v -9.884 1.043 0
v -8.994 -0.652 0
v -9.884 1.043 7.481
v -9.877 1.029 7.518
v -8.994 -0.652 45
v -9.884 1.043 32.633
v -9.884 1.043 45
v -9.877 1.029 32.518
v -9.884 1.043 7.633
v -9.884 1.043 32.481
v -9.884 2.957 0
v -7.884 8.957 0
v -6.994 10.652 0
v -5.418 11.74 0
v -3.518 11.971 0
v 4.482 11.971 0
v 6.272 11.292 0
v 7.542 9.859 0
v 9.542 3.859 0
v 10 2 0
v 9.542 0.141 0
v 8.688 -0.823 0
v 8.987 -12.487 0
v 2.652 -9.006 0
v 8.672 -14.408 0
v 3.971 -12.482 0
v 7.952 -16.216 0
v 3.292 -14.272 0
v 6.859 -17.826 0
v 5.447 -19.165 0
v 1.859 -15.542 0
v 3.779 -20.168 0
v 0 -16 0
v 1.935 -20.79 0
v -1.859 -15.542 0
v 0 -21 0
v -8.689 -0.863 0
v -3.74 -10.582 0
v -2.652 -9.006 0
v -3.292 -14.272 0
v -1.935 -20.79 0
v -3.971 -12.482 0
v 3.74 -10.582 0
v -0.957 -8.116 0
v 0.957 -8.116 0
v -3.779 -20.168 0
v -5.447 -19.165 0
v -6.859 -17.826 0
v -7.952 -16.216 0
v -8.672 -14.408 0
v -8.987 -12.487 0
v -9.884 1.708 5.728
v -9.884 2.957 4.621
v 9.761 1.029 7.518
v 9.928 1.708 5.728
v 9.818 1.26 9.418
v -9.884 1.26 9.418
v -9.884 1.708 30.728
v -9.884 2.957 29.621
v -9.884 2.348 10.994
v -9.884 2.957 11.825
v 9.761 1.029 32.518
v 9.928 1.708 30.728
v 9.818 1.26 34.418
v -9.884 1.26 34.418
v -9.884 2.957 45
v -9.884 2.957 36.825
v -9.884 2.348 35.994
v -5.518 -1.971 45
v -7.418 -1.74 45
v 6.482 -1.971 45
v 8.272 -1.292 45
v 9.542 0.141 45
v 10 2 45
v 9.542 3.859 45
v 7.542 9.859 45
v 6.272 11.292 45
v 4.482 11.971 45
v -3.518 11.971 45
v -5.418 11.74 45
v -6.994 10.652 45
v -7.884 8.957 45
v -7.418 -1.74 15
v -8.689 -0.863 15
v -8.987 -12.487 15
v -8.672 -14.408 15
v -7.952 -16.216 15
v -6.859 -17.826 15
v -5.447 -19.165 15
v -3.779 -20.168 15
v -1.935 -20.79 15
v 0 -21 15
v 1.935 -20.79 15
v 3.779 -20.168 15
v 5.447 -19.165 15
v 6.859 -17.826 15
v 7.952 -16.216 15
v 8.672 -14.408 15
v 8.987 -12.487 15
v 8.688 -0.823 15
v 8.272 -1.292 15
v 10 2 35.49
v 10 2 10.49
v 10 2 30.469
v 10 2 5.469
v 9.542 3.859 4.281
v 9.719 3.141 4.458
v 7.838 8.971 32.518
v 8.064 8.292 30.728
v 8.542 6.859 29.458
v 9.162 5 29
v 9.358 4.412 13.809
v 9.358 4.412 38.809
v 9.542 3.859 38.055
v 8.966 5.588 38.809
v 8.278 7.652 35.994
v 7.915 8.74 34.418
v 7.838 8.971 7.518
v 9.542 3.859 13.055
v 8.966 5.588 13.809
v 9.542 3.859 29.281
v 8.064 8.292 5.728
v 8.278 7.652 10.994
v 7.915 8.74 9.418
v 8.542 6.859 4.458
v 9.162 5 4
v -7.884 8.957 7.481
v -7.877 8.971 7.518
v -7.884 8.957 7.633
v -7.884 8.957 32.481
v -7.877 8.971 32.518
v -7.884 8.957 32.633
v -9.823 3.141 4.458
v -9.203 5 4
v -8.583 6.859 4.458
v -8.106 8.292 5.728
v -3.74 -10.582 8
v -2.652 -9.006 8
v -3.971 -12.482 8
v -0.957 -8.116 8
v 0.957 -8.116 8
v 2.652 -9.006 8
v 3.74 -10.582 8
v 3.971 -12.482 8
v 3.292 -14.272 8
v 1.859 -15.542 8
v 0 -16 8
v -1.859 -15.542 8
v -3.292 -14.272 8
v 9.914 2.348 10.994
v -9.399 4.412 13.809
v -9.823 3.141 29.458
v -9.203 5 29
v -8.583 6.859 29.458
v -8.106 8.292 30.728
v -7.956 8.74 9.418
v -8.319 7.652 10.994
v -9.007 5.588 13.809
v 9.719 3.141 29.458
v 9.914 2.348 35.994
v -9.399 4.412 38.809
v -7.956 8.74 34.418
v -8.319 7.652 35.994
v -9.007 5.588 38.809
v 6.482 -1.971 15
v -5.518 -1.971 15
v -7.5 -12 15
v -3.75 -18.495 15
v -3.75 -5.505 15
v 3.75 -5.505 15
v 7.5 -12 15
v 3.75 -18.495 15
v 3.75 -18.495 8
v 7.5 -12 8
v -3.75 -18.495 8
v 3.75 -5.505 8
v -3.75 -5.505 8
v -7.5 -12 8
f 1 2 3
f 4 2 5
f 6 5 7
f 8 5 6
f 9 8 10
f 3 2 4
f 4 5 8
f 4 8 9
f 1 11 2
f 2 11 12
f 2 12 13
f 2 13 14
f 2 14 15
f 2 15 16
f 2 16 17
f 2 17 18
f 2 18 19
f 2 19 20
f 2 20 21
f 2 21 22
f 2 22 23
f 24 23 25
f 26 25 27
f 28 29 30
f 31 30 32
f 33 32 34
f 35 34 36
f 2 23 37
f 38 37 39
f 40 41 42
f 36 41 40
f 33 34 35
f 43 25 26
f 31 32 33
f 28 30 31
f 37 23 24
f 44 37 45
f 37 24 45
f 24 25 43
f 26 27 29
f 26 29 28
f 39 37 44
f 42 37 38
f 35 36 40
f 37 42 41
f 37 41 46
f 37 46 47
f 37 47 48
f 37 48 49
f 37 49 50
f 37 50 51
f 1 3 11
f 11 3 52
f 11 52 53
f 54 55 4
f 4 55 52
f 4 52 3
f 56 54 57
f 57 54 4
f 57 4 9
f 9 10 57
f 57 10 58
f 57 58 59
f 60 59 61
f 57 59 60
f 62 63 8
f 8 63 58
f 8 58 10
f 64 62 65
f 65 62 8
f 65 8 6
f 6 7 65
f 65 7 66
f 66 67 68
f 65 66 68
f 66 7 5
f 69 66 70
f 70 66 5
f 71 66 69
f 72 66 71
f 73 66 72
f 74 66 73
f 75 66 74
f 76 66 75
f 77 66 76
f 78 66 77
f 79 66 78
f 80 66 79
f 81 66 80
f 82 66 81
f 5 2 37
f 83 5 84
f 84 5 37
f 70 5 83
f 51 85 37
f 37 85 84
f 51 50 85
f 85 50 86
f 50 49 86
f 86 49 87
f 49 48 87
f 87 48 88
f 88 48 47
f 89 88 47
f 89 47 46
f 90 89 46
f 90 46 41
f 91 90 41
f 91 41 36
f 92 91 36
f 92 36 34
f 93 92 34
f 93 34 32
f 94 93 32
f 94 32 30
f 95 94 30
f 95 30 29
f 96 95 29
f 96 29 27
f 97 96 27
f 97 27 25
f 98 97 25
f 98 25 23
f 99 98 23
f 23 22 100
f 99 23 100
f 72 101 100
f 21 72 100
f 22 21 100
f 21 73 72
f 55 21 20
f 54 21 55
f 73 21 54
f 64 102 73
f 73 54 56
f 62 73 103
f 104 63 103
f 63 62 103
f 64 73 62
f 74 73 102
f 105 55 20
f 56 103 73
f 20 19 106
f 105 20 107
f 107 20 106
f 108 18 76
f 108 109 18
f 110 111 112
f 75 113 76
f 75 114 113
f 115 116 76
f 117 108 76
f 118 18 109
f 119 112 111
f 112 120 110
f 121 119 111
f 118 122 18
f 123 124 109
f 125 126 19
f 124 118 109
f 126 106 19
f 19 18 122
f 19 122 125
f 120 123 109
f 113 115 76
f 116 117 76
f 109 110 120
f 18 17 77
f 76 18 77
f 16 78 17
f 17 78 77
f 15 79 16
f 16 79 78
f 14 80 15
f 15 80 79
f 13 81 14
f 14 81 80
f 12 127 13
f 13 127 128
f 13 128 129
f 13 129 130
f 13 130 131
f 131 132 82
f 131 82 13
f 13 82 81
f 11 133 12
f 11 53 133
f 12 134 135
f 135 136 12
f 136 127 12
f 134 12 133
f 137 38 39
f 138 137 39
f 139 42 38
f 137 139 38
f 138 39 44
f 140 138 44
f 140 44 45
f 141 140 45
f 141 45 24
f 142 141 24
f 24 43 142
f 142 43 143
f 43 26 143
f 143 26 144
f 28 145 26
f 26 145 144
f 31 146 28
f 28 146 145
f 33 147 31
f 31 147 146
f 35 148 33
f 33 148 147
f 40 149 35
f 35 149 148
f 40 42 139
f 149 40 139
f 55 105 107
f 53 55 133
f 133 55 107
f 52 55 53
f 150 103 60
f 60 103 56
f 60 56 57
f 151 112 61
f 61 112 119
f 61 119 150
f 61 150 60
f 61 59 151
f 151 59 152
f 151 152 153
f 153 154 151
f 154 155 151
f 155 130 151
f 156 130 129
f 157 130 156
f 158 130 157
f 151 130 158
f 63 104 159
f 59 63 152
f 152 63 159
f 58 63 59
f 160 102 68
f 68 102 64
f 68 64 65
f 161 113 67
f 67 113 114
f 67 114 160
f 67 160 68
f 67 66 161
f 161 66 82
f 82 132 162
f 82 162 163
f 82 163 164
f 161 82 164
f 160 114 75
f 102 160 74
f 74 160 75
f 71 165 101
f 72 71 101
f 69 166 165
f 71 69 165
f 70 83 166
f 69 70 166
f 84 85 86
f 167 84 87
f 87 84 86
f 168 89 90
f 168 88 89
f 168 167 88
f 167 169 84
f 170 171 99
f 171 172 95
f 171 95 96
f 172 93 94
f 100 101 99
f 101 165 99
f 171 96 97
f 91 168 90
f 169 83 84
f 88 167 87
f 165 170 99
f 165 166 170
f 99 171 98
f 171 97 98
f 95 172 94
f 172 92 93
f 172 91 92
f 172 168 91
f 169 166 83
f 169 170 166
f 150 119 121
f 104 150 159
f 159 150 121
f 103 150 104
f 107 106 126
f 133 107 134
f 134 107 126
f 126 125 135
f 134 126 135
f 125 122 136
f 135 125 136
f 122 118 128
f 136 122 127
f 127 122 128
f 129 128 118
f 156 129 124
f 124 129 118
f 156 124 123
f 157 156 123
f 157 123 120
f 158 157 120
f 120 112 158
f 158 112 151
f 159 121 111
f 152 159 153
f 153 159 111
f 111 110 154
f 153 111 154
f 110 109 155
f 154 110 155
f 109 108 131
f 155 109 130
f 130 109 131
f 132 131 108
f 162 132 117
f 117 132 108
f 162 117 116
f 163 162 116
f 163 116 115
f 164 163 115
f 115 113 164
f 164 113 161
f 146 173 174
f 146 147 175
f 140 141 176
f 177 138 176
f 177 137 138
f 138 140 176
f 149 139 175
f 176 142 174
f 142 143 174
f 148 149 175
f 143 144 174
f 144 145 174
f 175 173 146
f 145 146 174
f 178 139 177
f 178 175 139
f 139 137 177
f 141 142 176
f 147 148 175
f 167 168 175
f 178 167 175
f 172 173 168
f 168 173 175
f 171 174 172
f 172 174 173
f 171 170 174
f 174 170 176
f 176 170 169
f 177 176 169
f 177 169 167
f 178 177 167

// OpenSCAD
// file: y-end-motor-bracket.scad
//y_end_motor_bracket();

module y_end_motor_bracket(){

	bracket_thickness = 6;

	union(){
	
		linear_extrude(height=bracket_thickness)
			y_end_motor_bracket_2d();
	
		translate([0,-(23),6 - 0.1])
			rotate([90,0,0])
				linear_extrude(height=bracket_thickness/2)
					#y_end_motor_bracket_support_2d();
	
		translate([0,26 , 6 - 0.1])
			rotate([90,0,0])
				linear_extrude(height=bracket_thickness/2)
					y_end_motor_bracket_support_2d();
	}

}

module y_end_motor_bracket_support_2d(){

	support_thickness = 4;
	support_height = 20;

	hull(){
		polygon(points = [[0,0], [0,support_height], [support_height * 1.2,0]]);
		translate([support_height, support_height * 0.62 - 2]) 
			circle(r=4);
		}
}


module y_end_motor_bracket_2d(){

	bracket_depth = 49;
	motor_centre = 24;
	bracket_round_radius = 5;

	bracket_width = 60;
	bracket_small_width = 40;

	stepper_bolt_hole = 1.55;
	stepper_bolt_hole_offset = 31/2;

	difference(){
	
		hull(){	
			translate([bracket_depth - bracket_round_radius, bracket_small_width / 2]) 
				circle(r=bracket_round_radius);	
			translate([bracket_depth - bracket_round_radius, -bracket_small_width / 2])
				circle(r=bracket_round_radius);	
			polygon(points=[
				[0, bracket_width/2], 
				[bracket_depth, bracket_small_width/2 ],
				[bracket_depth, -bracket_small_width/2 ],
				[0, -bracket_width/2],
			]);
		}

		translate([motor_centre, 0])
				circle(r=bracket_round_radius);	

		// holes for stepper bolts
		#translate([motor_centre - stepper_bolt_hole_offset, stepper_bolt_hole_offset])
			circle(r=stepper_bolt_hole, $fn=50);
		#translate([motor_centre + stepper_bolt_hole_offset, stepper_bolt_hole_offset])
			circle(r=stepper_bolt_hole, $fn=50);
		#translate([motor_centre - stepper_bolt_hole_offset, -stepper_bolt_hole_offset])
			circle(r=stepper_bolt_hole, $fn=50);
		#translate([motor_centre + stepper_bolt_hole_offset, -stepper_bolt_hole_offset])
			circle(r=stepper_bolt_hole, $fn=50);


	}
}
 
// file: common_components.scad
module rod_clamp_holes(){

	bolt_head_radius = 3.5;
	bolt_shaft_radius = 1.55;
	depth = 20; 
	nut_depth = 8.5; 
	nut_radius = 2.0; 

	cylinder(h=depth, r=bolt_shaft_radius, $fn=50);

	cylinder(h=4, r=bolt_head_radius);

	translate([-nut_depth, -5.7/2, nut_depth]) 
		cube([nut_depth + nut_radius +2 , 5.7, 3.2]);

}

//rod_clamp_holes();




module warp_prevention(){

	translate([-100,-100,0]){
		for(i = [0:20:200]){
	
			translate([i, 0, 0])
				cube([2, 200, 2]);
	
			translate([0, i, 0])
				cube([200, 2, 2]);
	
		}
	}

}

module teardrop_cylinder(r, h){

	linear_extrude(height=h){
		hull(){
	
			circle(r=r);
			translate([-r * 1.25, 0])
				circle(r=1);
	
		}
	}
}
// file: y_end_motor_or_bearing.scad
	
include <common_components.scad>
include <y-end-motor-bracket.scad>

y_rod_height = 70;
rod_radius = 4;
screw_radius = 1.75;

// testing
//y_end_2d();
//teardrop_cylinder(5, 50);
//rail_mount();
//bearing_mount_2d();


// parts
//y_end_motor_mount(); 
//!y_end_bearing_mount(); 



module bearing_mount_2d(){


	difference(){
	
		hull(){
			
			translate([0, 0])
				circle(r=9);
	
			rotate([0,0,180])
				translate([10, 0])
					square([17, 17],  center=true);
	
	
		}

		circle(r=4);

	}

}

module y_end_bearing_mount(){



	difference(){ 
	
		union(){ 
			
			translate([0, -2, 0])
				rail_mount();
			translate([0, -12, 0])
				rotate([0,0,-90])	
					linear_extrude(height=15)
						bearing_mount_2d();

		}

	
		//translate([-35, -20, 26])
//			rotate([0,90,0])
//				#cylinder(r=16, h=70);
	

		// hex nut m8 = 15mm
		translate([0, -12, 8])
			#cylinder(r=7.5, h=10, $fn=6);
		

		translate([-35, 5, 8])
			rotate([0,90,0])
				#teardrop_cylinder(r=rod_radius, h=70);
	
		translate([-35, 5, 33])
			rotate([0,90,0])
				#teardrop_cylinder(r=rod_radius, h=70);


	}


}

module y_end_motor_mount(){



	difference(){ 
	
		union(){ 
			
			translate([22, -2, 0])
				rail_mount();
			translate([-22, -2, 0]) 
				rail_mount();
			translate([0, 0, 0])
				rotate([0,0,-90])	
					y_end_motor_bracket();

		}

	
		translate([-35, 5, 8])
			rotate([0,90,0])
				#teardrop_cylinder(r=rod_radius, h=70);
	
		translate([-35, 5, 33])
			rotate([0,90,0])
				#teardrop_cylinder(r=rod_radius, h=70);


	}


}



 
module rail_mount(){

	linear_extrude(height=45)
		rail_mount_2d();
		

}

module rail_mount_2d(){


	hull(){
		
		translate([4, 10])
			circle(r=4);

		translate([-4, 10])
			circle(r=4);

		translate([-6, 4])
			circle(r=4);

		translate([6, 4])
			circle(r=4);


	}

}
// main file
include <y_end_motor_or_bearing.scad>

y_end_bearing_mount();
